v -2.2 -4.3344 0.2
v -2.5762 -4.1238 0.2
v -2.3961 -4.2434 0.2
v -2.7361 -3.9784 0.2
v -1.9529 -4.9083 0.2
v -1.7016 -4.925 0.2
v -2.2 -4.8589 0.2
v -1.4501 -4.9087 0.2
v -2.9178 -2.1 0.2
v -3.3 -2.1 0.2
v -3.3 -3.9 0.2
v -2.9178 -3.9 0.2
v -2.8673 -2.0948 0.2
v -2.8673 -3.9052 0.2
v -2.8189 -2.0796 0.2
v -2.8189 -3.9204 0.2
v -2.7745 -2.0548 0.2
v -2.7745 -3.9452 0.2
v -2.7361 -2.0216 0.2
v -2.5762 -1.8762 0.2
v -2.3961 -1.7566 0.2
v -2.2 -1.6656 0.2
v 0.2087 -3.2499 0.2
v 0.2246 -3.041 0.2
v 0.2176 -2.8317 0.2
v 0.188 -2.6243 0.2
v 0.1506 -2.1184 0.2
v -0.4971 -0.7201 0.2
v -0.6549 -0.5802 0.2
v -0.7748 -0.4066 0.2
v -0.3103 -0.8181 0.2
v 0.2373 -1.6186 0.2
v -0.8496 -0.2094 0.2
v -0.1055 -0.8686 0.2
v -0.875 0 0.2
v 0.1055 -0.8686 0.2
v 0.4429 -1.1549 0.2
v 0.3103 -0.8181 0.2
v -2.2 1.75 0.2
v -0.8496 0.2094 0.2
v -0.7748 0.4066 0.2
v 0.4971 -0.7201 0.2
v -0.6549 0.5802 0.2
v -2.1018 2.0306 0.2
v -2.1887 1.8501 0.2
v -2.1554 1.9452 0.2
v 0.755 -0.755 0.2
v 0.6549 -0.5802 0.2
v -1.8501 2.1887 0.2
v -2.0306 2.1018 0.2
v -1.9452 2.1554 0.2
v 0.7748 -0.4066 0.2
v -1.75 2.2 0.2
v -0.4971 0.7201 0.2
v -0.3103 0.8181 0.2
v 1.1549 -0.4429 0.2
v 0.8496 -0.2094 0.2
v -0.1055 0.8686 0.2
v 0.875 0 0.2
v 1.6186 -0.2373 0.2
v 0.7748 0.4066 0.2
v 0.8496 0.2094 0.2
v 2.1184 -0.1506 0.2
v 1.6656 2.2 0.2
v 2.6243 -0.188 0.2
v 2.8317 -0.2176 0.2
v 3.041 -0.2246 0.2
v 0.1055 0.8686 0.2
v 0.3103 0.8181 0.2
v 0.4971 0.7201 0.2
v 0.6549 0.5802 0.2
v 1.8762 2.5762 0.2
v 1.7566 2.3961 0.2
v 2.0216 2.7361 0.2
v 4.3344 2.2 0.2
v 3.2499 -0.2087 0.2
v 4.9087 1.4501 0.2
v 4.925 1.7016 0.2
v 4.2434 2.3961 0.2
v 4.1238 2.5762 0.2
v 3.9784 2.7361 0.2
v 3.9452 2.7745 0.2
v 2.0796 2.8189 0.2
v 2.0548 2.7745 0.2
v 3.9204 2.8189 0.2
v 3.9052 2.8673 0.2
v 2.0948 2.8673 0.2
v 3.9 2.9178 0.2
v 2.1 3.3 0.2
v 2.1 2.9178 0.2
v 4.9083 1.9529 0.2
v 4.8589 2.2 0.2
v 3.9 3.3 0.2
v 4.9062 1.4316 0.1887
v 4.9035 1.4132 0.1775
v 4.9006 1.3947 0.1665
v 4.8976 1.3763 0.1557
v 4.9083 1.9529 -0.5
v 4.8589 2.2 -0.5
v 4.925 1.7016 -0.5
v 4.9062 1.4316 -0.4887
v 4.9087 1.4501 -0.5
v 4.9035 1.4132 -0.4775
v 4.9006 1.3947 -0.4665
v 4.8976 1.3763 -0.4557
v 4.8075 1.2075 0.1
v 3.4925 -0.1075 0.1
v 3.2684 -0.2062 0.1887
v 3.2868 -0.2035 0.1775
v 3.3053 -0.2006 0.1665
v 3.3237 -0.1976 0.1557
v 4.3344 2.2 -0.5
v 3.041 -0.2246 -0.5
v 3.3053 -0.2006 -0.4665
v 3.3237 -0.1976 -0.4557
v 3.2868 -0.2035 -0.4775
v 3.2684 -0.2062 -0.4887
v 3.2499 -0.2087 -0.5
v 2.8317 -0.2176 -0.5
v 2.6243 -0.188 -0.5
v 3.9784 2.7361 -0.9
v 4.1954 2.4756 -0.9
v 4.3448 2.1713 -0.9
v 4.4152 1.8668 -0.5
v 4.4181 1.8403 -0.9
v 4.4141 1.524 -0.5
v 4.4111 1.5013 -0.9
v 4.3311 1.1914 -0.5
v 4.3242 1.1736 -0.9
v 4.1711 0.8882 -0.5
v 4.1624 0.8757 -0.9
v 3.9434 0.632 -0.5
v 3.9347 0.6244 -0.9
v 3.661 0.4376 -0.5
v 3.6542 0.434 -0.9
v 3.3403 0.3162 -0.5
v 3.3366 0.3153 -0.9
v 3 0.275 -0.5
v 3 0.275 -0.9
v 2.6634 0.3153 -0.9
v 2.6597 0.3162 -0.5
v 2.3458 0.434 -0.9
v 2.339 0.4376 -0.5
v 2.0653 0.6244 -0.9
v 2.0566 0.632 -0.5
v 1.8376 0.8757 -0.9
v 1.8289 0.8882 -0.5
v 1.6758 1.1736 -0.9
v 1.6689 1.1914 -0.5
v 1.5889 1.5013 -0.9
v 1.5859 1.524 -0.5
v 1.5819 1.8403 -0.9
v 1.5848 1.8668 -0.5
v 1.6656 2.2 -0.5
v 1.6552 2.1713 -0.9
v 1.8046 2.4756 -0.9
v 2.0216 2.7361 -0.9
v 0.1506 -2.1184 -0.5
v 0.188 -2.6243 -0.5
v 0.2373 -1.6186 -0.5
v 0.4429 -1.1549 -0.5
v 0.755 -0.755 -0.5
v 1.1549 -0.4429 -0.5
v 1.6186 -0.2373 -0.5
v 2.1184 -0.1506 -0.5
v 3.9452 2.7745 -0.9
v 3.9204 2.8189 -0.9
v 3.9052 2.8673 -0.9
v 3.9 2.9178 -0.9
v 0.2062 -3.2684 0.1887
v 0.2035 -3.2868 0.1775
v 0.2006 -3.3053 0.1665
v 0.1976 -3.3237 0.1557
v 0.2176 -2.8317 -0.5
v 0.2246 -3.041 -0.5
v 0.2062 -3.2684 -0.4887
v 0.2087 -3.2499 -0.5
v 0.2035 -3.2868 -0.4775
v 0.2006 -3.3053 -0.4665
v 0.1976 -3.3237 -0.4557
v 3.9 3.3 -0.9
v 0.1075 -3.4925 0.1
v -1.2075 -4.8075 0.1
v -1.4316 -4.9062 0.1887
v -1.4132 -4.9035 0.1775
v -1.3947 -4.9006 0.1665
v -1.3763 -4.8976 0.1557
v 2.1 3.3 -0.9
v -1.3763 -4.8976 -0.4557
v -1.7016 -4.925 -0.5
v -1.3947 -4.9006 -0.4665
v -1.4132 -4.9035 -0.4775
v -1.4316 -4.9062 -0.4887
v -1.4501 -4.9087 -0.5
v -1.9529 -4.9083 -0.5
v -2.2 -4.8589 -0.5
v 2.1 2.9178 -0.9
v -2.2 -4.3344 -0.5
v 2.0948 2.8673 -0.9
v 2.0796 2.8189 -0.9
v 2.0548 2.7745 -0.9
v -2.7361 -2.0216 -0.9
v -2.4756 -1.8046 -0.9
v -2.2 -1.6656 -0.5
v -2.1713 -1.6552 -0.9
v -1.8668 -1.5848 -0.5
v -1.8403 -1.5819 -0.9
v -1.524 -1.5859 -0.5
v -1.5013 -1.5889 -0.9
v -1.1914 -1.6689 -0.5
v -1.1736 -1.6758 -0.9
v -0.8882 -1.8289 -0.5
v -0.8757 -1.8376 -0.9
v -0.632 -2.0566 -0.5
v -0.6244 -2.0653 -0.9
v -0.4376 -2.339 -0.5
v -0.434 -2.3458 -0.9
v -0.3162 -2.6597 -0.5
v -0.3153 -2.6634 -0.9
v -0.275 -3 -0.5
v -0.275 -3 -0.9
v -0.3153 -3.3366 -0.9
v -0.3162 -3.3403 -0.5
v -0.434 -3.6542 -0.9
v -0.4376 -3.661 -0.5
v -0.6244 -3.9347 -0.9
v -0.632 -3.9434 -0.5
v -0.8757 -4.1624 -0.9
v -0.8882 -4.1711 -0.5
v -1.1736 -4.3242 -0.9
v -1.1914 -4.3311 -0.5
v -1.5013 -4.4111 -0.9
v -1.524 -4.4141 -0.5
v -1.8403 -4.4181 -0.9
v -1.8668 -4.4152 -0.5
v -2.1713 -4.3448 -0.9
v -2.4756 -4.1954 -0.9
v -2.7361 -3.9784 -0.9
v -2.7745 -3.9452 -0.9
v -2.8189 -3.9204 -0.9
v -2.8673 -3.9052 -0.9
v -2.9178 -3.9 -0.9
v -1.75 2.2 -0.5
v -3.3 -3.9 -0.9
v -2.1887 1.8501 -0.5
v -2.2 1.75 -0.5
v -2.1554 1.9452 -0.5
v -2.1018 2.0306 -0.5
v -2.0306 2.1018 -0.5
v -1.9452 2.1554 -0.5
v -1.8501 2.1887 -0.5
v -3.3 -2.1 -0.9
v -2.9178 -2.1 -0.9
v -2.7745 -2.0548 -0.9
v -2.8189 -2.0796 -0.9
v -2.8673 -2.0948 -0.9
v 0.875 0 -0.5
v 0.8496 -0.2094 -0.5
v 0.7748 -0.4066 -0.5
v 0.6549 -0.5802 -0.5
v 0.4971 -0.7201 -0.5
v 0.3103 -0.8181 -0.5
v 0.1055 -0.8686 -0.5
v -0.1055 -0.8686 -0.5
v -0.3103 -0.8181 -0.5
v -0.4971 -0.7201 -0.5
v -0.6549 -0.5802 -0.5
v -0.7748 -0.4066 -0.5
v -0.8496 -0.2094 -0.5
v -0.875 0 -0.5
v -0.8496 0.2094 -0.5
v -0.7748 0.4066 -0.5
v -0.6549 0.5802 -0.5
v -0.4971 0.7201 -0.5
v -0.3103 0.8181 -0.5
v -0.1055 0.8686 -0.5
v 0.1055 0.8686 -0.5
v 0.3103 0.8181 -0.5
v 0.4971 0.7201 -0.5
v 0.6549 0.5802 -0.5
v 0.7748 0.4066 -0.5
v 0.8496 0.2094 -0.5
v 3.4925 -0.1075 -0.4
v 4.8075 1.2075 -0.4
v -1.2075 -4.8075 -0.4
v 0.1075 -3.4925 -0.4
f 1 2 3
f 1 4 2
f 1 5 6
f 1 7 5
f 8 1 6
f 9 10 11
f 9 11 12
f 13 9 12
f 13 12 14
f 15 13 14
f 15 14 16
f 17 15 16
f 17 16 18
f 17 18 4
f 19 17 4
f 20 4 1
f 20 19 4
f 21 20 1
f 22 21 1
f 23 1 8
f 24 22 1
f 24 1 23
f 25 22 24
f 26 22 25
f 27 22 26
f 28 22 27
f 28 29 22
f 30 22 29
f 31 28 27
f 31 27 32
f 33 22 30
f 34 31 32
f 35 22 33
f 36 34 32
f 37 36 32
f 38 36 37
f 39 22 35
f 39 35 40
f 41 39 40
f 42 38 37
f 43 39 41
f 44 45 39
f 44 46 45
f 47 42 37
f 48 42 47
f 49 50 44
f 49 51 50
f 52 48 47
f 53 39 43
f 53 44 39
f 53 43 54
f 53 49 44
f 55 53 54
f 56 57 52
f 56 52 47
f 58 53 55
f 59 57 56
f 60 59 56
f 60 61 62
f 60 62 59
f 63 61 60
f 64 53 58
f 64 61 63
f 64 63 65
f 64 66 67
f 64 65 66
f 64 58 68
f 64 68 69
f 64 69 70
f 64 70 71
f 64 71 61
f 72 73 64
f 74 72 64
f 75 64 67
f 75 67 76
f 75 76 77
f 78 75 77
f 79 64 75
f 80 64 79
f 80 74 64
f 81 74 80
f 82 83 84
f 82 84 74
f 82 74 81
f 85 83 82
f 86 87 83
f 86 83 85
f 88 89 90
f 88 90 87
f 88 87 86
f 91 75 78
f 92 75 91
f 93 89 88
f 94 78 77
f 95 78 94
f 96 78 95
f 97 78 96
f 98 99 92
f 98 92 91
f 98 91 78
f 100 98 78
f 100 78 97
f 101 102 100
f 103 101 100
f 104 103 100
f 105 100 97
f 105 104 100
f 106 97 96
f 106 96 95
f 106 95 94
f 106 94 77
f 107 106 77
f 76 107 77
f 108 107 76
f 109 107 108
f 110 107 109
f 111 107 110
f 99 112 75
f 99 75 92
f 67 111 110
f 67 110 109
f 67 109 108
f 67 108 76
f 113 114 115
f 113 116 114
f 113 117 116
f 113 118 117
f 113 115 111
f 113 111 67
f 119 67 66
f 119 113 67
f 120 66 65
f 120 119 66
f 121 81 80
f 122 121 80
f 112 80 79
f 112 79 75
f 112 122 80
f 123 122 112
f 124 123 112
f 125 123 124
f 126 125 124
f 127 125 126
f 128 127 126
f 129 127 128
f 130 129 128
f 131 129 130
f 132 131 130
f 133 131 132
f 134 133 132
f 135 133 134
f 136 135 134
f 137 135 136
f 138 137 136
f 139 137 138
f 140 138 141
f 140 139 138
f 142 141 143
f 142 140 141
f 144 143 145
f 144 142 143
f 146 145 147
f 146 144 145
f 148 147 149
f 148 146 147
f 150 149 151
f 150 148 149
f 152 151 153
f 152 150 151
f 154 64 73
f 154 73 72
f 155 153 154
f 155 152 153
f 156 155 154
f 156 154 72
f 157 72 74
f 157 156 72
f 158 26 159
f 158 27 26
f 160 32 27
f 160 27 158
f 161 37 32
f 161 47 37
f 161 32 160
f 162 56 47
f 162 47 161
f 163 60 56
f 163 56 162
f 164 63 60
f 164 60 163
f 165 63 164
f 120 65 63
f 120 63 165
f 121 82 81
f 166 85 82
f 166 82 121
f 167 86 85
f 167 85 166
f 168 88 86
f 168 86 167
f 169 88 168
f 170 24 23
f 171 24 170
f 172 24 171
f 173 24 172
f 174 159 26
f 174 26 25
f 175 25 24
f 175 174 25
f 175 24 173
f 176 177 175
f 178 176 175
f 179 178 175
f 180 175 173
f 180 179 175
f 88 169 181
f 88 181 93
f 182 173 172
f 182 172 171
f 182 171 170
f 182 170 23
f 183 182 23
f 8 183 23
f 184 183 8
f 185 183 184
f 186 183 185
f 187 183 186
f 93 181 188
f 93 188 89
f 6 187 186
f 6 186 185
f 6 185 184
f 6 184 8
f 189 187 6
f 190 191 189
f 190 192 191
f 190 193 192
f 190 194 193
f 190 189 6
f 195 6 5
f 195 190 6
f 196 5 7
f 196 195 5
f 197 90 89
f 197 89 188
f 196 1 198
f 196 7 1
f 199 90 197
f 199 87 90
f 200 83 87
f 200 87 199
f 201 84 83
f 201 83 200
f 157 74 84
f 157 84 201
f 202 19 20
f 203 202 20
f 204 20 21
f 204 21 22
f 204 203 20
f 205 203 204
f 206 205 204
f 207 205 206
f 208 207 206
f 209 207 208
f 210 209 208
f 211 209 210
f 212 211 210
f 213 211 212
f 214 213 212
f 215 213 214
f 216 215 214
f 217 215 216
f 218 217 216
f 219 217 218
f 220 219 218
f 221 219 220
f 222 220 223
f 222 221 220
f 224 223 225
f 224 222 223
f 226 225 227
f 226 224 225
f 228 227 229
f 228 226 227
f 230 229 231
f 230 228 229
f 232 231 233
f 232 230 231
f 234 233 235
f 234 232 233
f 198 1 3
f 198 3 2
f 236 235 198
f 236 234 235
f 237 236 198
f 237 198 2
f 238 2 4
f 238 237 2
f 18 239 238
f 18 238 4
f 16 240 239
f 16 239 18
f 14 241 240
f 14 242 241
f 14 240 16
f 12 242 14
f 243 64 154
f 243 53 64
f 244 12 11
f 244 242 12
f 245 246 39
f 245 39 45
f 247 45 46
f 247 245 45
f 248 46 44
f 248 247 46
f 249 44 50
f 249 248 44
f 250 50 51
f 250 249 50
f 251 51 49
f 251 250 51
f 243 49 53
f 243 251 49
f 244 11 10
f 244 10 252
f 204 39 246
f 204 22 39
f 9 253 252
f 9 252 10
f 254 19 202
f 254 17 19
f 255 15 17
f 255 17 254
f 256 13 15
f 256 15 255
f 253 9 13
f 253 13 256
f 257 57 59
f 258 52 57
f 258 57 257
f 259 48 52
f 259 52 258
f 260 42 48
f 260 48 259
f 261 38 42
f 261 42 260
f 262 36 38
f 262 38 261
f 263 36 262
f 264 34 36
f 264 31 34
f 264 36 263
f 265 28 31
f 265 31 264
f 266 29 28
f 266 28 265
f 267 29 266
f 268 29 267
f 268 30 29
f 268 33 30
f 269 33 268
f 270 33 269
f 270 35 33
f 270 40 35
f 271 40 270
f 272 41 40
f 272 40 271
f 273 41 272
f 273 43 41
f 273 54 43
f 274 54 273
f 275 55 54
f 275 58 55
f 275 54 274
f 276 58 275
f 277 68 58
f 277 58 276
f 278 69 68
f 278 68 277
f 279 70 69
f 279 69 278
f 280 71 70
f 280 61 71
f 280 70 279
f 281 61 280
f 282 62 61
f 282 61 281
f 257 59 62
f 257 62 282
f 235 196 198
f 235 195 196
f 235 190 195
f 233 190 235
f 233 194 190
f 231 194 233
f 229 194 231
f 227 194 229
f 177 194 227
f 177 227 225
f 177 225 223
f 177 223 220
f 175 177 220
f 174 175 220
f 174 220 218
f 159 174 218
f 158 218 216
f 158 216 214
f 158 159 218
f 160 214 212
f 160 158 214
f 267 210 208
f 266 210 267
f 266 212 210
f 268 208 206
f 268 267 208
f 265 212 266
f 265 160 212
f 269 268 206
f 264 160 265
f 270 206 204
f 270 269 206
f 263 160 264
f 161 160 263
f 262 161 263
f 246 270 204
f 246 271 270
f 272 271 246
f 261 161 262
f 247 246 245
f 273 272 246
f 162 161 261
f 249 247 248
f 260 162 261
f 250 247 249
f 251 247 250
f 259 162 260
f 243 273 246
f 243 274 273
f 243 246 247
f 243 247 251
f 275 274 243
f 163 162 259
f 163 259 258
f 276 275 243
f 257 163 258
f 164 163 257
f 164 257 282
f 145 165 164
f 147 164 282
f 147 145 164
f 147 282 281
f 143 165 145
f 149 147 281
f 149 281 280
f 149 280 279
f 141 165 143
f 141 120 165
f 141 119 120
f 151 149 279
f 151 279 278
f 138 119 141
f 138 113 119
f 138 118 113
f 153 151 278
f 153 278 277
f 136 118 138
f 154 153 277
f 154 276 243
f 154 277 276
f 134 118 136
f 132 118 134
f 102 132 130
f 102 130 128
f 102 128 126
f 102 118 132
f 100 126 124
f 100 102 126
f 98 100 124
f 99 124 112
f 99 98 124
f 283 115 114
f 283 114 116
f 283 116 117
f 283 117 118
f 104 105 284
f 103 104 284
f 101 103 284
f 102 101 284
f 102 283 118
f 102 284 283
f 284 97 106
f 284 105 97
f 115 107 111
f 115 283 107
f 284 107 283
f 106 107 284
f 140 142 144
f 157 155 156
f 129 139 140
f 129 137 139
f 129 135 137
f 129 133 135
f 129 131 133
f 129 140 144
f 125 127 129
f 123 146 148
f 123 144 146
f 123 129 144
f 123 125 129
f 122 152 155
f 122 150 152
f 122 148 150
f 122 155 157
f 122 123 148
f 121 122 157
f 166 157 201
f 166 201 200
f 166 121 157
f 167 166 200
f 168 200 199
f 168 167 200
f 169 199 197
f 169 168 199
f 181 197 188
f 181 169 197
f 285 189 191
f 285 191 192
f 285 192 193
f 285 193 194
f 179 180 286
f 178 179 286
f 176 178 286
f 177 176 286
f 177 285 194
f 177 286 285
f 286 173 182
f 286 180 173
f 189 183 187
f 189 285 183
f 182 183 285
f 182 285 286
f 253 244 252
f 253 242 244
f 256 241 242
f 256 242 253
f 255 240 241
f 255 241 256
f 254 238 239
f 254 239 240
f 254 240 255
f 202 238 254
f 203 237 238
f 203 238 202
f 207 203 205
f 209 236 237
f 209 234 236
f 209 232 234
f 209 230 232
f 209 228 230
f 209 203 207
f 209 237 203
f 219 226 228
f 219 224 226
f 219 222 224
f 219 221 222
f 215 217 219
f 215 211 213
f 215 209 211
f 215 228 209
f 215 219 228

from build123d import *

# Parameters (mm, degrees)
SKETCH493_R     = 0.875
PAD402_DEPTH    = 1
POCKET036_DEPTH = 1.3
PAD_DEPTH       = 0.9
POCKET_DEPTH    = 2.5
CHAMFER_SIZE    = 0.1


with BuildPart() as part:
    # Sketch493 → Pad402 (new body, symmetric)
    with BuildSketch(Plane(origin=(50, -50, 0.5), x_dir=(1, 0, 0), z_dir=(0, 0, 1))):
        with BuildLine():
            Line((-53.3, 47.9), (-53.3, 46.1))
            Line((-53.3, 46.1), (-52.917836, 46.1))
            ThreePointArc((-52.73607, 46.021642), (-52.818868, 46.079576), (-52.917836, 46.1))
            ThreePointArc((-52.73607, 46.021642), (-52.488396, 45.812963), (-52.2, 45.665599))
            Line((-52.2, 45.665599), (-52.2, 45.141069))
            ThreePointArc((-52.2, 45.141069), (-50.38471, 45.594427), (-49.812013, 47.375671))
            ThreePointArc((-47.375671, 49.812013), (-49.245018, 49.245018), (-49.812013, 47.375671))
            ThreePointArc((-47.375671, 49.812013), (-45.594427, 50.38471), (-45.141069, 52.2))
            Line((-45.665599, 52.2), (-45.141069, 52.2))
            ThreePointArc((-45.665599, 52.2), (-45.812963, 52.488396), (-46.021642, 52.73607))
            ThreePointArc((-46.1, 52.917836), (-46.079576, 52.818868), (-46.021642, 52.73607))
            Line((-46.1, 53.3), (-46.1, 52.917836))
            Line((-47.9, 53.3), (-46.1, 53.3))
            Line((-47.9, 53.3), (-47.9, 52.917836))
            ThreePointArc((-47.978358, 52.73607), (-47.920424, 52.818868), (-47.9, 52.917836))
            ThreePointArc((-47.978358, 52.73607), (-48.187037, 52.488396), (-48.334401, 52.2))
            Line((-48.334401, 52.2), (-51.75, 52.2))
            ThreePointArc((-51.75, 52.2), (-52.068198, 52.068198), (-52.2, 51.75))
            Line((-52.2, 51.75), (-52.2, 48.334401))
            ThreePointArc((-52.2, 48.334401), (-52.488396, 48.187037), (-52.73607, 47.978358))
            ThreePointArc((-52.917836, 47.9), (-52.818868, 47.920424), (-52.73607, 47.978358))
            Line((-52.917836, 47.9), (-53.3, 47.9))
        make_face()
        with Locations((-50, 50)):
            Circle(SKETCH493_R, mode=Mode.SUBTRACT)
    extrude(amount=PAD402_DEPTH, both=True)

    # Sketch494 → Pocket036 (cut)
    with BuildSketch(Plane(origin=(50, -50, 1.5), x_dir=(1, 0, 0), z_dir=(0, 0, 1))):
        with BuildLine():
            Line((0, 0), (-100, 0))
            Line((-100, 0), (-100, 51.8))
            ThreePointArc((-51.8, 100), (-85.882547, 85.882547), (-100, 51.8))
            Line((-51.8, 100), (0, 100))
            Line((0, 100), (0, 0))
        make_face()
    extrude(amount=-POCKET036_DEPTH, mode=Mode.SUBTRACT)

    # Sketch497 → Pad (join)
    with BuildSketch(Plane(origin=(50, -50, 0), x_dir=(1, 0, 0), z_dir=(0, 0, 1))):
        with BuildLine():
            Line((-53.3, 47.9), (-53.3, 46.1))
            Line((-53.3, 46.1), (-52.917836, 46.1))
            ThreePointArc((-52.73607, 46.021642), (-52.818868, 46.079576), (-52.917836, 46.1))
            ThreePointArc((-52.73607, 46.021642), (-50.275, 47), (-52.73607, 47.978358))
            ThreePointArc((-52.917836, 47.9), (-52.818868, 47.920424), (-52.73607, 47.978358))
            Line((-52.917836, 47.9), (-53.3, 47.9))
        make_face()
        with BuildLine():
            Line((-46.1, 53.3), (-46.1, 52.917836))
            ThreePointArc((-46.1, 52.917836), (-46.079576, 52.818868), (-46.021642, 52.73607))
            ThreePointArc((-47.978358, 52.73607), (-47, 50.275), (-46.021642, 52.73607))
            ThreePointArc((-47.978358, 52.73607), (-47.920424, 52.818868), (-47.9, 52.917836))
            Line((-47.9, 53.3), (-47.9, 52.917836))
            Line((-47.9, 53.3), (-46.1, 53.3))
        make_face()
    extrude(amount=-PAD_DEPTH)

    # Sketch → Pocket (cut, symmetric)
    with BuildSketch(Plane(origin=(50, -50, 0), x_dir=(1, 0, 0), z_dir=(0, 0, 1))):
        Polygon((-52.2, 44.2), (-44.2, 52.2), (-42, 52.2), (-52.2, 42), align=None)
    extrude(amount=POCKET_DEPTH, both=True, mode=Mode.SUBTRACT)

    # Chamfer
    chamfer_edges = [part.edges().sort_by_distance(p)[0] for p in [
        (4.15, 0.55, 0.2),
        (4.878226, 1.278226, -0.15),
        (4.15, 0.55, -0.5),
        (3.421774, -0.178226, -0.15),
        (-0.55, -4.15, 0.2),
        (0.178226, -3.421774, -0.15),
        (-0.55, -4.15, -0.5),
        (-1.278226, -4.878226, -0.15),
    ]]
    chamfer(chamfer_edges, length=CHAMFER_SIZE)


solid = part.part
